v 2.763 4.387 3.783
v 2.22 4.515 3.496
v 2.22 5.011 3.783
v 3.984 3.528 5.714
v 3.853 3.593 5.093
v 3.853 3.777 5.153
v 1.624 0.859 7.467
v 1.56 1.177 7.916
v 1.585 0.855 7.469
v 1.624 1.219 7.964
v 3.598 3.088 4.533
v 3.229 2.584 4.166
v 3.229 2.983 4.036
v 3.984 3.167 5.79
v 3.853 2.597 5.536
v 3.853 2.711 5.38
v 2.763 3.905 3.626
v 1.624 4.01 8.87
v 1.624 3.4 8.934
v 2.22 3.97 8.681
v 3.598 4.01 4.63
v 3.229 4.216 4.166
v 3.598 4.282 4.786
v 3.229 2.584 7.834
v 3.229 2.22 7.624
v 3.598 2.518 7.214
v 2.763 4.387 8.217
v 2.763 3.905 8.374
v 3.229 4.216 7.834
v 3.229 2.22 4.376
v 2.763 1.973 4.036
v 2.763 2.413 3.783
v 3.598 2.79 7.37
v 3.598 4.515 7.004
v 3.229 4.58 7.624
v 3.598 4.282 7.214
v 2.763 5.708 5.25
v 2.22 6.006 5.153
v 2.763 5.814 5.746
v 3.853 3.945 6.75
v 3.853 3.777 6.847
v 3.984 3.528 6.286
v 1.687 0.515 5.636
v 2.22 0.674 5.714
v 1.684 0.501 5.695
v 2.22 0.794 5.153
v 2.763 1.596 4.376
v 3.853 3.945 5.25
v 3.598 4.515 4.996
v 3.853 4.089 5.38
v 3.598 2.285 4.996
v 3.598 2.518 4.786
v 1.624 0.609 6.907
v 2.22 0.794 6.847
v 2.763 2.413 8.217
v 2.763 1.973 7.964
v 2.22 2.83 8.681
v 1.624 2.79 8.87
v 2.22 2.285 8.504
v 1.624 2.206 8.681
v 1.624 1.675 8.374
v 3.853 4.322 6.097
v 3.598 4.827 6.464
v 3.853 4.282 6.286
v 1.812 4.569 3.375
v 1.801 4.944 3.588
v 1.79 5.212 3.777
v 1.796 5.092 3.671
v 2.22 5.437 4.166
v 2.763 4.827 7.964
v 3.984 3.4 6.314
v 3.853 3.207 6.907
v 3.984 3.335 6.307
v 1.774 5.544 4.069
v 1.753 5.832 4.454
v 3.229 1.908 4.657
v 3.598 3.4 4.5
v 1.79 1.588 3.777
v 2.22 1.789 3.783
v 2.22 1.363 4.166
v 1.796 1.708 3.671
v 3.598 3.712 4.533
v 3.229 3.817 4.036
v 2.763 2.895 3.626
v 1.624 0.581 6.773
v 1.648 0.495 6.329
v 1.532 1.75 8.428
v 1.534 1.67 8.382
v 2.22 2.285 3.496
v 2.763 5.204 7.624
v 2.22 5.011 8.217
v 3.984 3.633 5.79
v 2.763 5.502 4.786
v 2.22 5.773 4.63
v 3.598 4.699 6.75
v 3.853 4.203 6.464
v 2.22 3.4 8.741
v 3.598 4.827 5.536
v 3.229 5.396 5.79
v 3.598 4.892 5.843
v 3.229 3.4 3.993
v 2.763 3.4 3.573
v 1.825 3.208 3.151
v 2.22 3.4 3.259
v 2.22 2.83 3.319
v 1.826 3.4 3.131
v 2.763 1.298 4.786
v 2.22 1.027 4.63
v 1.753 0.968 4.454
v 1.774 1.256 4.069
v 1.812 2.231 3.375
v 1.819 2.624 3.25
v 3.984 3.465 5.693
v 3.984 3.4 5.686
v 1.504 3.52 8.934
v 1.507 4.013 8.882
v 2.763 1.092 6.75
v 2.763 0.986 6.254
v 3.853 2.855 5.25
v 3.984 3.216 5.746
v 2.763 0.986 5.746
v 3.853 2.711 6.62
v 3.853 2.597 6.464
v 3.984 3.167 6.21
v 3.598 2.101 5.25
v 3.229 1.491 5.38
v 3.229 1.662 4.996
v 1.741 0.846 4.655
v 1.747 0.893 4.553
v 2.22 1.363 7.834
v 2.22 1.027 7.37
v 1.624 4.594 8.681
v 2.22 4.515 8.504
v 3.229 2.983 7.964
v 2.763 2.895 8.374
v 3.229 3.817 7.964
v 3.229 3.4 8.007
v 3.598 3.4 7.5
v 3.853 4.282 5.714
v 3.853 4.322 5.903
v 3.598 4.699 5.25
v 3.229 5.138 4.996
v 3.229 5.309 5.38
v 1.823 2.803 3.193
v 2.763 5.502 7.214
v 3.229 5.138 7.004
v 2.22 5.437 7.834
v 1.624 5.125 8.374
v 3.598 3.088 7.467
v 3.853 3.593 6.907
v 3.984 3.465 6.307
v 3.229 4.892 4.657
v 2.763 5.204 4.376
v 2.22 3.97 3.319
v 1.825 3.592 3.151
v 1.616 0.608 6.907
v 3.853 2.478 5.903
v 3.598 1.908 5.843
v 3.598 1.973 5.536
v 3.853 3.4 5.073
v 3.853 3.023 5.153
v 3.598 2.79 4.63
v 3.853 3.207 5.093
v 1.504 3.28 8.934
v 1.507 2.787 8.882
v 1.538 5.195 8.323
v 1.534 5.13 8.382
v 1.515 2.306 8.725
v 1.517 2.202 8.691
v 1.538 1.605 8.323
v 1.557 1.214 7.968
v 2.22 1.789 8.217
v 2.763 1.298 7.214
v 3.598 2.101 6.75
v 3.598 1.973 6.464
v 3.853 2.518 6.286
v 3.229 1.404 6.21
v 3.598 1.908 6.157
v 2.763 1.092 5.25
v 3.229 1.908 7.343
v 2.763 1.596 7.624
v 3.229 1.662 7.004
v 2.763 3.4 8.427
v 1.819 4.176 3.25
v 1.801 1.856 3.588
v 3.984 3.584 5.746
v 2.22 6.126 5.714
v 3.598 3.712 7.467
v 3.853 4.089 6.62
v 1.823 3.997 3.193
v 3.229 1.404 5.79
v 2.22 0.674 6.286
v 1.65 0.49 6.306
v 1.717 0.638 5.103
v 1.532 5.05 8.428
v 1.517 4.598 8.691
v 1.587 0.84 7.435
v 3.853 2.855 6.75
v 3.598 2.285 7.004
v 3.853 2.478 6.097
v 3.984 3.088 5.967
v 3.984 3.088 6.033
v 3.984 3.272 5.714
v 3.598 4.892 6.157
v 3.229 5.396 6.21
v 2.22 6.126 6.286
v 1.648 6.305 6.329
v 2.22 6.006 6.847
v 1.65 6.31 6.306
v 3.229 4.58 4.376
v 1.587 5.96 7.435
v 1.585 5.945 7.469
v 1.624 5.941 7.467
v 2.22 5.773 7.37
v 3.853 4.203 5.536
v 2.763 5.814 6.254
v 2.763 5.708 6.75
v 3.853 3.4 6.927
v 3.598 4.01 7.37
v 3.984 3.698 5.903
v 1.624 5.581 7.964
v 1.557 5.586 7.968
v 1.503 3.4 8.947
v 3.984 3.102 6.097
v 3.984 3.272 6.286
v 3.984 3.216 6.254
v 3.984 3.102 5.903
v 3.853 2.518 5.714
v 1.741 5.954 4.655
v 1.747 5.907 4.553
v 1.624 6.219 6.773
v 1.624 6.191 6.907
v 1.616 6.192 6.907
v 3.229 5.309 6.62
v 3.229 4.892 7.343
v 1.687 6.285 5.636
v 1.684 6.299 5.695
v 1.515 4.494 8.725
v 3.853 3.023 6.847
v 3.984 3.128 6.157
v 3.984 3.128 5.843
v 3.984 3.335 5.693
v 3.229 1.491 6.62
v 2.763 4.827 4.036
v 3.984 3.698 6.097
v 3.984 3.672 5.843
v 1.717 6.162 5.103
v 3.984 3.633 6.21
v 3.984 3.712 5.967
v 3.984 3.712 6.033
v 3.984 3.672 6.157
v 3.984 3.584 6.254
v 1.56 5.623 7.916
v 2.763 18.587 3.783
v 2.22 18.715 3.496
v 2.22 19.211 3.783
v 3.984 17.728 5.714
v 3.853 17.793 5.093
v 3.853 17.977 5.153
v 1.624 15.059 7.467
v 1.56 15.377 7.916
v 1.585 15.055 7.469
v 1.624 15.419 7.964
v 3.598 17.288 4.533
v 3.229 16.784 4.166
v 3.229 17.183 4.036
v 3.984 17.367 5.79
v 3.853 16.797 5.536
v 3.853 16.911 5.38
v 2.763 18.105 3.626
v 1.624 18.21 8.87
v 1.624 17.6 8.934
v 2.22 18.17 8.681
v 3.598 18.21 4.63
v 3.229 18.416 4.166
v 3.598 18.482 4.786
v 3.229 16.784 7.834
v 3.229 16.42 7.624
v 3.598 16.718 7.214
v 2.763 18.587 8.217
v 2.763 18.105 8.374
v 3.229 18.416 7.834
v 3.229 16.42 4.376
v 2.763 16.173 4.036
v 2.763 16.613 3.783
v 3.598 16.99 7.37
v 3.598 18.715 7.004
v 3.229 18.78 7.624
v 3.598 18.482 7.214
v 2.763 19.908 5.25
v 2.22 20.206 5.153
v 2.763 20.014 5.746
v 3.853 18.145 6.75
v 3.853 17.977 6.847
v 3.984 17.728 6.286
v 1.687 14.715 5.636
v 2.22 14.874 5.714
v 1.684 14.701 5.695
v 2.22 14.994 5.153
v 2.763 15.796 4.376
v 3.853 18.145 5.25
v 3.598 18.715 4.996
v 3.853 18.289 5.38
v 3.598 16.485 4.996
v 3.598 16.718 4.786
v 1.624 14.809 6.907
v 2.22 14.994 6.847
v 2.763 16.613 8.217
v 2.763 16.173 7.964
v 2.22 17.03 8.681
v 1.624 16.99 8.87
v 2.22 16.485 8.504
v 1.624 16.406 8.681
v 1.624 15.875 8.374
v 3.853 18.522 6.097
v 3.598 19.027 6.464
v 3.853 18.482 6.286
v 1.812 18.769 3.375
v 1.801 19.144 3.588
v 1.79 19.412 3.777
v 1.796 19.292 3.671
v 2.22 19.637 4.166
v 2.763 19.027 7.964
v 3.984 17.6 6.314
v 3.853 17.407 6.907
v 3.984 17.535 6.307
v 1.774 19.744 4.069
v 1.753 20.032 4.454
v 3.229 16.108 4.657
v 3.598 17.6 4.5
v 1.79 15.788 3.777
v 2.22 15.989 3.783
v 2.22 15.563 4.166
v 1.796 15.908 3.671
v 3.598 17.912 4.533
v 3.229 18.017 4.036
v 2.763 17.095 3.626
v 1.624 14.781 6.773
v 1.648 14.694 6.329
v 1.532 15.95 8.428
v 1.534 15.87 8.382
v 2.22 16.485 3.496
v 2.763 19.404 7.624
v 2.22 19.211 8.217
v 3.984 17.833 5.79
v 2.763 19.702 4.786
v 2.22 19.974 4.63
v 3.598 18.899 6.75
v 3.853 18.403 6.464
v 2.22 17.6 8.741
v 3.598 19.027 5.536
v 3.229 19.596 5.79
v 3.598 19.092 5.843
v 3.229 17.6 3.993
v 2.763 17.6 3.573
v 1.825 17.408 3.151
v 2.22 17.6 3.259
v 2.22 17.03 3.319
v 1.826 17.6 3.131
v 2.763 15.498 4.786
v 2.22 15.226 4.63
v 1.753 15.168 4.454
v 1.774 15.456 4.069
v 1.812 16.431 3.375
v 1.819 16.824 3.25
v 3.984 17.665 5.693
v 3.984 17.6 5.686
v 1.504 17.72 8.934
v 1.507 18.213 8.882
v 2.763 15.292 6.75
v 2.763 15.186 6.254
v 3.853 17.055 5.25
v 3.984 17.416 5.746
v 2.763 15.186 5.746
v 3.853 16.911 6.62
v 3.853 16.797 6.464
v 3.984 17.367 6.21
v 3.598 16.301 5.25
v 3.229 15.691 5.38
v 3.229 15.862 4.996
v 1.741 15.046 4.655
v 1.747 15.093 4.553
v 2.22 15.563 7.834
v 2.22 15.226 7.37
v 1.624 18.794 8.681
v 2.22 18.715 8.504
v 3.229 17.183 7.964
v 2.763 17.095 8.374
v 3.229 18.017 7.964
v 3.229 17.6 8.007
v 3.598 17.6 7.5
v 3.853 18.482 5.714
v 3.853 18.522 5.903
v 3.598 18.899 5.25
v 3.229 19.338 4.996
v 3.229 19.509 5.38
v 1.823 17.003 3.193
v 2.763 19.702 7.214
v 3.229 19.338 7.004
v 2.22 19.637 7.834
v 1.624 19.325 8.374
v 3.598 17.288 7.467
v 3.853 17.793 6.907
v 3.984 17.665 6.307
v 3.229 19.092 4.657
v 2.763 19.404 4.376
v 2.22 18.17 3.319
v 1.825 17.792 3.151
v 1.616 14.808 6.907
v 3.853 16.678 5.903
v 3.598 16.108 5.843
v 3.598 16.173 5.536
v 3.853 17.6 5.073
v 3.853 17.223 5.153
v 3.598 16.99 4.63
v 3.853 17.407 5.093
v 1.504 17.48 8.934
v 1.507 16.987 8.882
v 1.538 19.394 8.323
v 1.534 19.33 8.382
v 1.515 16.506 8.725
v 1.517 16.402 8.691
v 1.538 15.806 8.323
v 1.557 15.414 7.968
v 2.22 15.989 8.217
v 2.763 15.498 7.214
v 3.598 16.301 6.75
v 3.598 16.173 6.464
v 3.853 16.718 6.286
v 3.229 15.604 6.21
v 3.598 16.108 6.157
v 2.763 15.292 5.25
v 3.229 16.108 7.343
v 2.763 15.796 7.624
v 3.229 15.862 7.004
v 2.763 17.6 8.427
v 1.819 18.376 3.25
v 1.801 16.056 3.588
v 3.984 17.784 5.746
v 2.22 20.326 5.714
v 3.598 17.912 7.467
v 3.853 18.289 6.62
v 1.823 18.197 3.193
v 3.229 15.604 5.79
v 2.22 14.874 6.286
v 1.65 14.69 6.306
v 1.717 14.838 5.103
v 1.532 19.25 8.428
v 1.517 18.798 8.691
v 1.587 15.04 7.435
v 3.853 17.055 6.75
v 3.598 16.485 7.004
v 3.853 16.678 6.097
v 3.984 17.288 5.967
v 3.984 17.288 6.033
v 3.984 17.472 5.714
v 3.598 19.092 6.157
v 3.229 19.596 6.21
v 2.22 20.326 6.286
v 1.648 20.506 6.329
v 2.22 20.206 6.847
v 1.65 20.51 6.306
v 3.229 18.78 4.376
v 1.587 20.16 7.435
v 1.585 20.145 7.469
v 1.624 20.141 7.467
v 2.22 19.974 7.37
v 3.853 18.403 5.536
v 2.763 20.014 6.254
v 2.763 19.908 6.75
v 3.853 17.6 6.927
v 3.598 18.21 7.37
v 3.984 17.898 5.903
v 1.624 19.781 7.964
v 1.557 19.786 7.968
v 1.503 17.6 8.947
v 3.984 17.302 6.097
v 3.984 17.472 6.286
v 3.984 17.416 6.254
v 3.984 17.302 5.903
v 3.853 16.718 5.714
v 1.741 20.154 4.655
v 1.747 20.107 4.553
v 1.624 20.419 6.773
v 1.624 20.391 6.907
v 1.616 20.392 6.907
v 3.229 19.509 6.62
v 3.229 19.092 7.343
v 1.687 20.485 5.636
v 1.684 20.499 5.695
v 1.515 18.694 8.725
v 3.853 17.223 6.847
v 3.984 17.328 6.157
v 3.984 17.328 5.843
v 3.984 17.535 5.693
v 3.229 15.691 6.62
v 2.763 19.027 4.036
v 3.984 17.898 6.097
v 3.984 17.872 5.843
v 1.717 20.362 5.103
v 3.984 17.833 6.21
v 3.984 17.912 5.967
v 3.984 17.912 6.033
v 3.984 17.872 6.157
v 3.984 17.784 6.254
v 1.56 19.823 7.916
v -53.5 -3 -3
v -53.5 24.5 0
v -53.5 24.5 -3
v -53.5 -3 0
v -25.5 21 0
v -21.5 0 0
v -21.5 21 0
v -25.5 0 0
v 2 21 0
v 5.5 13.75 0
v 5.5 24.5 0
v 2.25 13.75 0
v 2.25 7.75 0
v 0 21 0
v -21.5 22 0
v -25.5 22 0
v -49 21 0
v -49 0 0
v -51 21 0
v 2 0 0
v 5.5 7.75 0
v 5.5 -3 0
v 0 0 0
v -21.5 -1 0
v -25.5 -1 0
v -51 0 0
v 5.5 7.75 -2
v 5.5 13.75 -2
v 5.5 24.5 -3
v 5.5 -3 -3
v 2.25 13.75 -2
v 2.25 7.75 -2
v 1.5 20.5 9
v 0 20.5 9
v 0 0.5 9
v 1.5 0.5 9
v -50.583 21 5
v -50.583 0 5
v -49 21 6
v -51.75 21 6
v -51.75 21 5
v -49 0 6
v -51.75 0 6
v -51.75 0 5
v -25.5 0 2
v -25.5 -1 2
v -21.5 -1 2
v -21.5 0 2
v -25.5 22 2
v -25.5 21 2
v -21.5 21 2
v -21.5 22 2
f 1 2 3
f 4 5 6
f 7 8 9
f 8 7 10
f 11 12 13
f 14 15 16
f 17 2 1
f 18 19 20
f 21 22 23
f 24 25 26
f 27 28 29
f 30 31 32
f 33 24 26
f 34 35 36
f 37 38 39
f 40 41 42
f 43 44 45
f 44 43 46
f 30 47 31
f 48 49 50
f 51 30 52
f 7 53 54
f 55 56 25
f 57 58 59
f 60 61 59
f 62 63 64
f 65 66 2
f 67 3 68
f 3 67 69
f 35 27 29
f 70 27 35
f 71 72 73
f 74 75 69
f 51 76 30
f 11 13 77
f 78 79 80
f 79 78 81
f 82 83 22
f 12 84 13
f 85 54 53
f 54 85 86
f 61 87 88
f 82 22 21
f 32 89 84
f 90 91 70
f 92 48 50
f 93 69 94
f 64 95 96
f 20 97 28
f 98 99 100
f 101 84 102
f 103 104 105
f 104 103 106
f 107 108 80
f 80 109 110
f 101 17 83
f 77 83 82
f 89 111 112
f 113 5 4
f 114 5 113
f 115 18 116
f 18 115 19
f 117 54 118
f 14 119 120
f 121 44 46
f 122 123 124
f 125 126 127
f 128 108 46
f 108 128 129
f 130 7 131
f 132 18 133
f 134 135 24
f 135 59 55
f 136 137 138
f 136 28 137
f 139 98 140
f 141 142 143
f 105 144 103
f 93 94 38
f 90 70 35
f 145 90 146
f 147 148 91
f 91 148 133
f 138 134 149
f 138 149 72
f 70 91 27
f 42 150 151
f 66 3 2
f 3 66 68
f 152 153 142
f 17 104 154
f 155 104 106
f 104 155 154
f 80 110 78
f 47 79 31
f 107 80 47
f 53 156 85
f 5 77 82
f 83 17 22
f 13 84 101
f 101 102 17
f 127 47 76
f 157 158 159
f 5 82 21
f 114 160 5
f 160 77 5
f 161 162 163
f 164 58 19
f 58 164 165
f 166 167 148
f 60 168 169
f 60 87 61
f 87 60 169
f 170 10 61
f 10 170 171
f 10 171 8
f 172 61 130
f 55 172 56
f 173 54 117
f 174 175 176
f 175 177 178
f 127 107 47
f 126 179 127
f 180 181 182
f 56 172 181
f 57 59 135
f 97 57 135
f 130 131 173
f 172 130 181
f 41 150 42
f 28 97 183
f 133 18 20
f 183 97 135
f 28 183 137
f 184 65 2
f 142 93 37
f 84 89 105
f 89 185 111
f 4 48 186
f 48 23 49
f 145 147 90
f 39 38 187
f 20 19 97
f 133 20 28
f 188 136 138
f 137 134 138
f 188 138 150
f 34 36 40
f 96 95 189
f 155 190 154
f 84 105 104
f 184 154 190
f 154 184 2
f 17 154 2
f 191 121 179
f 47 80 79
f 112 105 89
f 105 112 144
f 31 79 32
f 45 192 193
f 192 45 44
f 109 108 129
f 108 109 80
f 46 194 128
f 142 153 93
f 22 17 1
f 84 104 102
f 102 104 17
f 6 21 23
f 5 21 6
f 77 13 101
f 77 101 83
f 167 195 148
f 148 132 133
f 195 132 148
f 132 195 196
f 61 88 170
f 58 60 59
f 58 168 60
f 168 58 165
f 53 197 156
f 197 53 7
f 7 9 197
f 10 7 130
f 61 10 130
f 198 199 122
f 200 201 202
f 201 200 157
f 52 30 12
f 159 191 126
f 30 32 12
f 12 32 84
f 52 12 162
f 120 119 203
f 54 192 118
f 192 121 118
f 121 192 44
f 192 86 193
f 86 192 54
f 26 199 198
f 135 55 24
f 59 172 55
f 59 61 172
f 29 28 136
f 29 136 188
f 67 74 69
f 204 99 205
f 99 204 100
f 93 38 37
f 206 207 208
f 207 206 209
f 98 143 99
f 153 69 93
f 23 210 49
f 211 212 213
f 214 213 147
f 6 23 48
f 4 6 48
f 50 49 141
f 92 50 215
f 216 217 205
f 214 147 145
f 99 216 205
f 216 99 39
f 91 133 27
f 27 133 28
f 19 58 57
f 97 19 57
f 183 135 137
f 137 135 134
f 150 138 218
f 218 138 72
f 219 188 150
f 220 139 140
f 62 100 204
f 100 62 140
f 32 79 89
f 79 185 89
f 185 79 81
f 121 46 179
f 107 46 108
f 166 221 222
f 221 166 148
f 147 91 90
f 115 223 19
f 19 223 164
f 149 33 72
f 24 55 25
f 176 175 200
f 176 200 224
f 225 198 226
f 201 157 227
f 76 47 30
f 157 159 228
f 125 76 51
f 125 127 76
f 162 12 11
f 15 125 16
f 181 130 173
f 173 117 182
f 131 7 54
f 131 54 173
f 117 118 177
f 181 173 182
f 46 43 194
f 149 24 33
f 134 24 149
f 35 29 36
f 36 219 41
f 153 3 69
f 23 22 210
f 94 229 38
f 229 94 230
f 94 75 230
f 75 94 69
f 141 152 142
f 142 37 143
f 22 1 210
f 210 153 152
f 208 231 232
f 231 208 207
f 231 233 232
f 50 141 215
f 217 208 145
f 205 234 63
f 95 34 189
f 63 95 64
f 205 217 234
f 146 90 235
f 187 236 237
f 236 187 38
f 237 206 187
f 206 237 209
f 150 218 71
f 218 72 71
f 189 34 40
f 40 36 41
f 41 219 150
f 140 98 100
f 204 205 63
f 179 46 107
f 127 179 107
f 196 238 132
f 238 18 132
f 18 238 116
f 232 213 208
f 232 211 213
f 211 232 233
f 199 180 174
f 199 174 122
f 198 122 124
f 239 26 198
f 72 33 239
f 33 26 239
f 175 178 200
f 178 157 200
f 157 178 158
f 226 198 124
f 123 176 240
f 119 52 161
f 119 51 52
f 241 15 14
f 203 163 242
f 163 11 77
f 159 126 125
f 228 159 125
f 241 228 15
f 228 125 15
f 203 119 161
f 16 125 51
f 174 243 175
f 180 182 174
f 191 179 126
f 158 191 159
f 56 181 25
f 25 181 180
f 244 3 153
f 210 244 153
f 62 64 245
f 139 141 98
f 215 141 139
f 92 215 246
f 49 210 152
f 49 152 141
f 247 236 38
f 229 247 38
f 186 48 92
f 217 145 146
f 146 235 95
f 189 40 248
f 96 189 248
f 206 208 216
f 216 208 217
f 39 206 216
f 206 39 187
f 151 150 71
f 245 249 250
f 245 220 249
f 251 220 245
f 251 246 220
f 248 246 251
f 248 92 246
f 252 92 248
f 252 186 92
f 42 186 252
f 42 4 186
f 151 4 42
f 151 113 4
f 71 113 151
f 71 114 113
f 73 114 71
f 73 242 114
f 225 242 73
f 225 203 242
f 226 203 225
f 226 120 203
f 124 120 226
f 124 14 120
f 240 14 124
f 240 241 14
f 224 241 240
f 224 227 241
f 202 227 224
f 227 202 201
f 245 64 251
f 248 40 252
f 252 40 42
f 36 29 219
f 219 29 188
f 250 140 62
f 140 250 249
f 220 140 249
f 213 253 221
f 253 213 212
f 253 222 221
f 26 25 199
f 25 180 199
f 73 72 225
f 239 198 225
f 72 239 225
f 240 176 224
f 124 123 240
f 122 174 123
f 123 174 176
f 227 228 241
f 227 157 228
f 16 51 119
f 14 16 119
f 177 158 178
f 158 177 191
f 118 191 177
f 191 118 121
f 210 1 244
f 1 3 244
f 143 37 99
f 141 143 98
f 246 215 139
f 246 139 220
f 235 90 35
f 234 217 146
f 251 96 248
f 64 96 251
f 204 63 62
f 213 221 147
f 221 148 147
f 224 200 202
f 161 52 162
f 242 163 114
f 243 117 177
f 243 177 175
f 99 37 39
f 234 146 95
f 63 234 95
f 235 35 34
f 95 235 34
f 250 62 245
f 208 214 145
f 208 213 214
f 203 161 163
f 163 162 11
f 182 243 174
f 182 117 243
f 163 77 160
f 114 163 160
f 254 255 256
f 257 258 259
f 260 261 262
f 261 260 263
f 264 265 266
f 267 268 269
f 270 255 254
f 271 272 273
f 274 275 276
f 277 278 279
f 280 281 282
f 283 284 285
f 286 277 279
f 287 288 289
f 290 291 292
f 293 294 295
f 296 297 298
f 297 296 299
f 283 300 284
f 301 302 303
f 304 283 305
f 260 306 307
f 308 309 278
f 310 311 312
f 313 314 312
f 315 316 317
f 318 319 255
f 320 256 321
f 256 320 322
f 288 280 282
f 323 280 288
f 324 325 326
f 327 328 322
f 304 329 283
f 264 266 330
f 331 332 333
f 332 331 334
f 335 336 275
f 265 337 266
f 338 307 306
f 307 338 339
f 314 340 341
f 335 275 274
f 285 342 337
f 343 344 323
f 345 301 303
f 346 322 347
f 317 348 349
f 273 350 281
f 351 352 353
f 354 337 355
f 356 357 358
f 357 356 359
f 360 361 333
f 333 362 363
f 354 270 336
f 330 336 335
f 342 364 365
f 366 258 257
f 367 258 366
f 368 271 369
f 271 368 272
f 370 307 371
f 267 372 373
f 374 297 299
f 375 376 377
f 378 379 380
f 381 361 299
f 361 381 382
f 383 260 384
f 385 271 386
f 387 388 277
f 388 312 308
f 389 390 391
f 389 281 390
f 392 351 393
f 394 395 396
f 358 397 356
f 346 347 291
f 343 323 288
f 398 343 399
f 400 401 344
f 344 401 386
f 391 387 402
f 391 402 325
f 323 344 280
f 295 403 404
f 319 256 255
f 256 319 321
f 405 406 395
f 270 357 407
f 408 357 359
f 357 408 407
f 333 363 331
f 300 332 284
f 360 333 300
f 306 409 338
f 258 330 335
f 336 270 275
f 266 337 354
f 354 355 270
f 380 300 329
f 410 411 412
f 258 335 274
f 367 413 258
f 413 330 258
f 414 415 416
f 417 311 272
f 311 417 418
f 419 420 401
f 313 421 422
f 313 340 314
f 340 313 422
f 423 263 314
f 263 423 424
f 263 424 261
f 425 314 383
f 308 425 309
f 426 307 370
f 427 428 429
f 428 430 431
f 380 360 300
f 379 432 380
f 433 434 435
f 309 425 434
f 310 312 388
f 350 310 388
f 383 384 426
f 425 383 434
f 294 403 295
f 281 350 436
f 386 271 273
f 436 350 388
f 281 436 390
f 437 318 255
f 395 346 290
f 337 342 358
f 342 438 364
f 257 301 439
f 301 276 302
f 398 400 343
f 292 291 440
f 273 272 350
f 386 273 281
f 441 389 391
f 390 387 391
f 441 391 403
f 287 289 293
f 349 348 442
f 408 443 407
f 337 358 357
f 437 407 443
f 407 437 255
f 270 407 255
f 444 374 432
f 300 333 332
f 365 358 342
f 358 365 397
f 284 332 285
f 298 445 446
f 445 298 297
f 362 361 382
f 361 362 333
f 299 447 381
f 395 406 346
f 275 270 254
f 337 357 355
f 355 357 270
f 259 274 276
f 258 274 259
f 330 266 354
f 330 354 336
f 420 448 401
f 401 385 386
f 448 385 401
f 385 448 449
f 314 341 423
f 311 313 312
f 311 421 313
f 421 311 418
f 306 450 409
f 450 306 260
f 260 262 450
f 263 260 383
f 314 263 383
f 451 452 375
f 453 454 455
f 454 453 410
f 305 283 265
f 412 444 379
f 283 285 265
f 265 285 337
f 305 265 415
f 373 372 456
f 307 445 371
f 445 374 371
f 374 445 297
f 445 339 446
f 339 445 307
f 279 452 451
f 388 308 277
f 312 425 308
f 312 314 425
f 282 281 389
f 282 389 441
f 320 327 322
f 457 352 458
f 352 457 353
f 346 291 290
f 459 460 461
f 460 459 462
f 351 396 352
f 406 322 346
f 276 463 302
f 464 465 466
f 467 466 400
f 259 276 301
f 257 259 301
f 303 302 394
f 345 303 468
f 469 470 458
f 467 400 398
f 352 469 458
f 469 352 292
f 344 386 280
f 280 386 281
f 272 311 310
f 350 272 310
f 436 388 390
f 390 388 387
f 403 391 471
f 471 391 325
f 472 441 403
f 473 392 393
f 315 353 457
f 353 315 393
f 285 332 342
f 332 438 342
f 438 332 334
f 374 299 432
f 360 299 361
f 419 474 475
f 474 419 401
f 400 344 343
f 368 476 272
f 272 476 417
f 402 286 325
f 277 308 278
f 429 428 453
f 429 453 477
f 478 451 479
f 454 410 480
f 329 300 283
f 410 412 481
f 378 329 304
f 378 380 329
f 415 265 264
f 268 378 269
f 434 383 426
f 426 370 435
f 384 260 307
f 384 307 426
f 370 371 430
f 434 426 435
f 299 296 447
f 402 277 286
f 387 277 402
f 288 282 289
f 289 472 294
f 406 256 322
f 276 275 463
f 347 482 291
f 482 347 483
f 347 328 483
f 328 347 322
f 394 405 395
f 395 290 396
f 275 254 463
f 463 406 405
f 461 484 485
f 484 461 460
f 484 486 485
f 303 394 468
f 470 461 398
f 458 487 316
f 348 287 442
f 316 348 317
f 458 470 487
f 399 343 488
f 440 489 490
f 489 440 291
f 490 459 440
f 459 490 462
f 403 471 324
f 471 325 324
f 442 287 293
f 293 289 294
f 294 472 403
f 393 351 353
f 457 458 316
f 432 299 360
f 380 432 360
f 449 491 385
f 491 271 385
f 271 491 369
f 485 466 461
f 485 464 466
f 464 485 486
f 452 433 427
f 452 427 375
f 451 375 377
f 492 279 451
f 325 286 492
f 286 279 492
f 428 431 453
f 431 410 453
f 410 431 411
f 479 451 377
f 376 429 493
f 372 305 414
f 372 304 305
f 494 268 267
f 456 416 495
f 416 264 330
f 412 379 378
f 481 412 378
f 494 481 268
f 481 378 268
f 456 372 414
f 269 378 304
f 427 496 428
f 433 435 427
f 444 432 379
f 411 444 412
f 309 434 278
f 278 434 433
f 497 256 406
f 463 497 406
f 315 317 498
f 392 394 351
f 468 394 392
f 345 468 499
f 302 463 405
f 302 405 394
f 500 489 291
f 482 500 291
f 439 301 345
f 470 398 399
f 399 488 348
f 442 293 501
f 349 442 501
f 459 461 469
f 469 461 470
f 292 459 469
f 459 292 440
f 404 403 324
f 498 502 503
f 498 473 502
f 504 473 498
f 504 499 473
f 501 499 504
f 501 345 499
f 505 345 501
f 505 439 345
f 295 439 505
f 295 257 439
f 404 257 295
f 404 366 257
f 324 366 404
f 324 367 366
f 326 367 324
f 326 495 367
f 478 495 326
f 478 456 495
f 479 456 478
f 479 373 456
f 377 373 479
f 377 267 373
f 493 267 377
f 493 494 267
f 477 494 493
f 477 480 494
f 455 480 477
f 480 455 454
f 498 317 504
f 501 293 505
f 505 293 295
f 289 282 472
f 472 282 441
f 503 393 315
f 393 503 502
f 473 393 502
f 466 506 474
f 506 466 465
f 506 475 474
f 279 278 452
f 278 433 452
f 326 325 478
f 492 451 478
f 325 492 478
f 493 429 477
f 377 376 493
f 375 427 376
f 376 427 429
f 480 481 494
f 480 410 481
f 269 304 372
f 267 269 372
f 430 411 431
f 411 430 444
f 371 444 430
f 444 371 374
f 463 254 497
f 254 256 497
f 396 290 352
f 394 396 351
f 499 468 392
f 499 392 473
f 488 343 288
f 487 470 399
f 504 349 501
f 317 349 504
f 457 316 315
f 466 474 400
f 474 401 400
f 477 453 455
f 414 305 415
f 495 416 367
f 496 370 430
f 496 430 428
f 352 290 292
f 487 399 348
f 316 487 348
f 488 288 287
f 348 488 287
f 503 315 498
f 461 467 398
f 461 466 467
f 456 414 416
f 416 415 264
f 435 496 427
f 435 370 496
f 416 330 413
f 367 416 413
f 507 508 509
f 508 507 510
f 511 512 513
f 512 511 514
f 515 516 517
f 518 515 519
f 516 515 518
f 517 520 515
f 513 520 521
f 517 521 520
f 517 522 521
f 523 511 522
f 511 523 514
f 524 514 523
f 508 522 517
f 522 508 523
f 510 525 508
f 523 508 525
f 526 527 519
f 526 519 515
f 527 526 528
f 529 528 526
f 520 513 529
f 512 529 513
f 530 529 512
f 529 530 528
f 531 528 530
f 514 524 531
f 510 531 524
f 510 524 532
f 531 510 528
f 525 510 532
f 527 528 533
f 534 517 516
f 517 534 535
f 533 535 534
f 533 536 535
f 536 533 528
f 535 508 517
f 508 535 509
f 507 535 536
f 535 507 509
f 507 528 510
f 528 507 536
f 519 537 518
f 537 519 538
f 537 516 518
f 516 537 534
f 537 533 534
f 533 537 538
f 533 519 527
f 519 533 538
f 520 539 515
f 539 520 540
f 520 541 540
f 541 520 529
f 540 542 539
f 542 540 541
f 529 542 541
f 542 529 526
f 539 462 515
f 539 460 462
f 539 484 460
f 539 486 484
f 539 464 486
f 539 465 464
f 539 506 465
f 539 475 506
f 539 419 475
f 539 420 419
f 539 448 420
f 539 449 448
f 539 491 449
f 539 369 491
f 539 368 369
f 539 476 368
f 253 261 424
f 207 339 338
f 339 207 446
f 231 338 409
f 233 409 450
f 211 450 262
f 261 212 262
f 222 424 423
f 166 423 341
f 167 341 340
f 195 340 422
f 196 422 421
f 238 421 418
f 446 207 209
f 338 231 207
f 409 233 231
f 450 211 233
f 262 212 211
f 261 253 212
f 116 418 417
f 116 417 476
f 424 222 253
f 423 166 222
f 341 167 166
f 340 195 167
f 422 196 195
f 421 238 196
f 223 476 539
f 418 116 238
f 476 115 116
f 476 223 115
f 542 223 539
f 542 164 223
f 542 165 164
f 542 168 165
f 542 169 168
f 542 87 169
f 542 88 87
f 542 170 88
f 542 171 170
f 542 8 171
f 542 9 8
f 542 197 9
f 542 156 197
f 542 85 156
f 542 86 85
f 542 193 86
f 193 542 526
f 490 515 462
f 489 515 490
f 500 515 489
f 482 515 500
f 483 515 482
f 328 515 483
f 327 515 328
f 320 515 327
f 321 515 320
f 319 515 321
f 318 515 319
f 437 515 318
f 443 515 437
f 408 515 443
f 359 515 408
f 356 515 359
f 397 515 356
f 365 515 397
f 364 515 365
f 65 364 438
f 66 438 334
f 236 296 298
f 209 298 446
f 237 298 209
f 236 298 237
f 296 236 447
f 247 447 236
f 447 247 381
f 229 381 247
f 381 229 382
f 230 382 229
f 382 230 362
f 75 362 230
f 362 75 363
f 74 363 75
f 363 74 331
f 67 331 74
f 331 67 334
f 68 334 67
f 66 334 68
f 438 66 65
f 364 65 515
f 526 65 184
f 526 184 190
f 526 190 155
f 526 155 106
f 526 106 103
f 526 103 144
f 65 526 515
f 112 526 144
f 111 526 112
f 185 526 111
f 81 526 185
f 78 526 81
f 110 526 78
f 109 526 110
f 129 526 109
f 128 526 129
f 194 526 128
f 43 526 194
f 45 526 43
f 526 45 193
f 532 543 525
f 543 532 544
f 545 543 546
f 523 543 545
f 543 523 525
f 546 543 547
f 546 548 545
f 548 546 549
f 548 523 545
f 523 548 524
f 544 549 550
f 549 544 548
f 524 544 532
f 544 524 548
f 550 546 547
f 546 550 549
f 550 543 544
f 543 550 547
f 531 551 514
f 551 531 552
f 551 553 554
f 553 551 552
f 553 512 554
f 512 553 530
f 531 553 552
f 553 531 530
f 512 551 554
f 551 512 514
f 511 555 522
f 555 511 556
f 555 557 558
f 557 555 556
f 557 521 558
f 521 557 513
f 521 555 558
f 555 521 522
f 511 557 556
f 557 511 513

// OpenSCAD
// BBC B 'Ashtray' cover per original Acorn design
facets=30;

// Top

difference(){
    translate([-53.5,-3,-3]) 
        cube([59,27.5,3]);
    translate([2.25,7.75,-2])
        cube ([5.6,6,2.1]);
};

// Lower Clip

hull() {
    polyhedron
            ( points=[
                [0,0,0], [0,21,0], [0,20.5,9],[0,0.5,9],
                [1.5,0.5,9],[1.5,20.5,9],[2,21,0],[2,0,0]  ],
          faces=[
                [0,1,2,3],[4,5,6,7],[0,1,6,7],
                [2,3,4,5],[0,3,4,7],[1,2,5,6]   ]
            );

};
    translate([1,3.4,6]) rotate([0,90,0]) difference() {
        sphere(r=3, $fn=facets);
        translate([-5,-5,-5]) 
            cube ([10,10,5]);
    };    

    translate([1,17.6,6]) rotate([0,90,0]) difference() {
        sphere(r=3, $fn=facets);
        translate([-5,-5,-5]) 
            cube ([10,10,5]);
    }; 
    
// Upper Clip

translate([-51,0,0]) 
    hull() {
        polyhedron
                ( points=[
                    [0,0,0], [0,21,0], [0.5,21,6],[0.5,0,6],
                    [2,0,6],[2,21,6],[2,21,0],[2,0,0]  ],
              faces=[
                    [0,1,2,3],[4,5,6,7],[0,1,6,7],
                    [2,3,4,5],[0,3,4,7],[1,2,5,6]   ]
                );
    };
translate([-51.75,0,5])
    cube([2,21,1]);

// Side Guides
translate([-25.5,-1,0])
    cube([4,1,2]);
    
translate([-25.5,21,0])
    cube([4,1,2]);
